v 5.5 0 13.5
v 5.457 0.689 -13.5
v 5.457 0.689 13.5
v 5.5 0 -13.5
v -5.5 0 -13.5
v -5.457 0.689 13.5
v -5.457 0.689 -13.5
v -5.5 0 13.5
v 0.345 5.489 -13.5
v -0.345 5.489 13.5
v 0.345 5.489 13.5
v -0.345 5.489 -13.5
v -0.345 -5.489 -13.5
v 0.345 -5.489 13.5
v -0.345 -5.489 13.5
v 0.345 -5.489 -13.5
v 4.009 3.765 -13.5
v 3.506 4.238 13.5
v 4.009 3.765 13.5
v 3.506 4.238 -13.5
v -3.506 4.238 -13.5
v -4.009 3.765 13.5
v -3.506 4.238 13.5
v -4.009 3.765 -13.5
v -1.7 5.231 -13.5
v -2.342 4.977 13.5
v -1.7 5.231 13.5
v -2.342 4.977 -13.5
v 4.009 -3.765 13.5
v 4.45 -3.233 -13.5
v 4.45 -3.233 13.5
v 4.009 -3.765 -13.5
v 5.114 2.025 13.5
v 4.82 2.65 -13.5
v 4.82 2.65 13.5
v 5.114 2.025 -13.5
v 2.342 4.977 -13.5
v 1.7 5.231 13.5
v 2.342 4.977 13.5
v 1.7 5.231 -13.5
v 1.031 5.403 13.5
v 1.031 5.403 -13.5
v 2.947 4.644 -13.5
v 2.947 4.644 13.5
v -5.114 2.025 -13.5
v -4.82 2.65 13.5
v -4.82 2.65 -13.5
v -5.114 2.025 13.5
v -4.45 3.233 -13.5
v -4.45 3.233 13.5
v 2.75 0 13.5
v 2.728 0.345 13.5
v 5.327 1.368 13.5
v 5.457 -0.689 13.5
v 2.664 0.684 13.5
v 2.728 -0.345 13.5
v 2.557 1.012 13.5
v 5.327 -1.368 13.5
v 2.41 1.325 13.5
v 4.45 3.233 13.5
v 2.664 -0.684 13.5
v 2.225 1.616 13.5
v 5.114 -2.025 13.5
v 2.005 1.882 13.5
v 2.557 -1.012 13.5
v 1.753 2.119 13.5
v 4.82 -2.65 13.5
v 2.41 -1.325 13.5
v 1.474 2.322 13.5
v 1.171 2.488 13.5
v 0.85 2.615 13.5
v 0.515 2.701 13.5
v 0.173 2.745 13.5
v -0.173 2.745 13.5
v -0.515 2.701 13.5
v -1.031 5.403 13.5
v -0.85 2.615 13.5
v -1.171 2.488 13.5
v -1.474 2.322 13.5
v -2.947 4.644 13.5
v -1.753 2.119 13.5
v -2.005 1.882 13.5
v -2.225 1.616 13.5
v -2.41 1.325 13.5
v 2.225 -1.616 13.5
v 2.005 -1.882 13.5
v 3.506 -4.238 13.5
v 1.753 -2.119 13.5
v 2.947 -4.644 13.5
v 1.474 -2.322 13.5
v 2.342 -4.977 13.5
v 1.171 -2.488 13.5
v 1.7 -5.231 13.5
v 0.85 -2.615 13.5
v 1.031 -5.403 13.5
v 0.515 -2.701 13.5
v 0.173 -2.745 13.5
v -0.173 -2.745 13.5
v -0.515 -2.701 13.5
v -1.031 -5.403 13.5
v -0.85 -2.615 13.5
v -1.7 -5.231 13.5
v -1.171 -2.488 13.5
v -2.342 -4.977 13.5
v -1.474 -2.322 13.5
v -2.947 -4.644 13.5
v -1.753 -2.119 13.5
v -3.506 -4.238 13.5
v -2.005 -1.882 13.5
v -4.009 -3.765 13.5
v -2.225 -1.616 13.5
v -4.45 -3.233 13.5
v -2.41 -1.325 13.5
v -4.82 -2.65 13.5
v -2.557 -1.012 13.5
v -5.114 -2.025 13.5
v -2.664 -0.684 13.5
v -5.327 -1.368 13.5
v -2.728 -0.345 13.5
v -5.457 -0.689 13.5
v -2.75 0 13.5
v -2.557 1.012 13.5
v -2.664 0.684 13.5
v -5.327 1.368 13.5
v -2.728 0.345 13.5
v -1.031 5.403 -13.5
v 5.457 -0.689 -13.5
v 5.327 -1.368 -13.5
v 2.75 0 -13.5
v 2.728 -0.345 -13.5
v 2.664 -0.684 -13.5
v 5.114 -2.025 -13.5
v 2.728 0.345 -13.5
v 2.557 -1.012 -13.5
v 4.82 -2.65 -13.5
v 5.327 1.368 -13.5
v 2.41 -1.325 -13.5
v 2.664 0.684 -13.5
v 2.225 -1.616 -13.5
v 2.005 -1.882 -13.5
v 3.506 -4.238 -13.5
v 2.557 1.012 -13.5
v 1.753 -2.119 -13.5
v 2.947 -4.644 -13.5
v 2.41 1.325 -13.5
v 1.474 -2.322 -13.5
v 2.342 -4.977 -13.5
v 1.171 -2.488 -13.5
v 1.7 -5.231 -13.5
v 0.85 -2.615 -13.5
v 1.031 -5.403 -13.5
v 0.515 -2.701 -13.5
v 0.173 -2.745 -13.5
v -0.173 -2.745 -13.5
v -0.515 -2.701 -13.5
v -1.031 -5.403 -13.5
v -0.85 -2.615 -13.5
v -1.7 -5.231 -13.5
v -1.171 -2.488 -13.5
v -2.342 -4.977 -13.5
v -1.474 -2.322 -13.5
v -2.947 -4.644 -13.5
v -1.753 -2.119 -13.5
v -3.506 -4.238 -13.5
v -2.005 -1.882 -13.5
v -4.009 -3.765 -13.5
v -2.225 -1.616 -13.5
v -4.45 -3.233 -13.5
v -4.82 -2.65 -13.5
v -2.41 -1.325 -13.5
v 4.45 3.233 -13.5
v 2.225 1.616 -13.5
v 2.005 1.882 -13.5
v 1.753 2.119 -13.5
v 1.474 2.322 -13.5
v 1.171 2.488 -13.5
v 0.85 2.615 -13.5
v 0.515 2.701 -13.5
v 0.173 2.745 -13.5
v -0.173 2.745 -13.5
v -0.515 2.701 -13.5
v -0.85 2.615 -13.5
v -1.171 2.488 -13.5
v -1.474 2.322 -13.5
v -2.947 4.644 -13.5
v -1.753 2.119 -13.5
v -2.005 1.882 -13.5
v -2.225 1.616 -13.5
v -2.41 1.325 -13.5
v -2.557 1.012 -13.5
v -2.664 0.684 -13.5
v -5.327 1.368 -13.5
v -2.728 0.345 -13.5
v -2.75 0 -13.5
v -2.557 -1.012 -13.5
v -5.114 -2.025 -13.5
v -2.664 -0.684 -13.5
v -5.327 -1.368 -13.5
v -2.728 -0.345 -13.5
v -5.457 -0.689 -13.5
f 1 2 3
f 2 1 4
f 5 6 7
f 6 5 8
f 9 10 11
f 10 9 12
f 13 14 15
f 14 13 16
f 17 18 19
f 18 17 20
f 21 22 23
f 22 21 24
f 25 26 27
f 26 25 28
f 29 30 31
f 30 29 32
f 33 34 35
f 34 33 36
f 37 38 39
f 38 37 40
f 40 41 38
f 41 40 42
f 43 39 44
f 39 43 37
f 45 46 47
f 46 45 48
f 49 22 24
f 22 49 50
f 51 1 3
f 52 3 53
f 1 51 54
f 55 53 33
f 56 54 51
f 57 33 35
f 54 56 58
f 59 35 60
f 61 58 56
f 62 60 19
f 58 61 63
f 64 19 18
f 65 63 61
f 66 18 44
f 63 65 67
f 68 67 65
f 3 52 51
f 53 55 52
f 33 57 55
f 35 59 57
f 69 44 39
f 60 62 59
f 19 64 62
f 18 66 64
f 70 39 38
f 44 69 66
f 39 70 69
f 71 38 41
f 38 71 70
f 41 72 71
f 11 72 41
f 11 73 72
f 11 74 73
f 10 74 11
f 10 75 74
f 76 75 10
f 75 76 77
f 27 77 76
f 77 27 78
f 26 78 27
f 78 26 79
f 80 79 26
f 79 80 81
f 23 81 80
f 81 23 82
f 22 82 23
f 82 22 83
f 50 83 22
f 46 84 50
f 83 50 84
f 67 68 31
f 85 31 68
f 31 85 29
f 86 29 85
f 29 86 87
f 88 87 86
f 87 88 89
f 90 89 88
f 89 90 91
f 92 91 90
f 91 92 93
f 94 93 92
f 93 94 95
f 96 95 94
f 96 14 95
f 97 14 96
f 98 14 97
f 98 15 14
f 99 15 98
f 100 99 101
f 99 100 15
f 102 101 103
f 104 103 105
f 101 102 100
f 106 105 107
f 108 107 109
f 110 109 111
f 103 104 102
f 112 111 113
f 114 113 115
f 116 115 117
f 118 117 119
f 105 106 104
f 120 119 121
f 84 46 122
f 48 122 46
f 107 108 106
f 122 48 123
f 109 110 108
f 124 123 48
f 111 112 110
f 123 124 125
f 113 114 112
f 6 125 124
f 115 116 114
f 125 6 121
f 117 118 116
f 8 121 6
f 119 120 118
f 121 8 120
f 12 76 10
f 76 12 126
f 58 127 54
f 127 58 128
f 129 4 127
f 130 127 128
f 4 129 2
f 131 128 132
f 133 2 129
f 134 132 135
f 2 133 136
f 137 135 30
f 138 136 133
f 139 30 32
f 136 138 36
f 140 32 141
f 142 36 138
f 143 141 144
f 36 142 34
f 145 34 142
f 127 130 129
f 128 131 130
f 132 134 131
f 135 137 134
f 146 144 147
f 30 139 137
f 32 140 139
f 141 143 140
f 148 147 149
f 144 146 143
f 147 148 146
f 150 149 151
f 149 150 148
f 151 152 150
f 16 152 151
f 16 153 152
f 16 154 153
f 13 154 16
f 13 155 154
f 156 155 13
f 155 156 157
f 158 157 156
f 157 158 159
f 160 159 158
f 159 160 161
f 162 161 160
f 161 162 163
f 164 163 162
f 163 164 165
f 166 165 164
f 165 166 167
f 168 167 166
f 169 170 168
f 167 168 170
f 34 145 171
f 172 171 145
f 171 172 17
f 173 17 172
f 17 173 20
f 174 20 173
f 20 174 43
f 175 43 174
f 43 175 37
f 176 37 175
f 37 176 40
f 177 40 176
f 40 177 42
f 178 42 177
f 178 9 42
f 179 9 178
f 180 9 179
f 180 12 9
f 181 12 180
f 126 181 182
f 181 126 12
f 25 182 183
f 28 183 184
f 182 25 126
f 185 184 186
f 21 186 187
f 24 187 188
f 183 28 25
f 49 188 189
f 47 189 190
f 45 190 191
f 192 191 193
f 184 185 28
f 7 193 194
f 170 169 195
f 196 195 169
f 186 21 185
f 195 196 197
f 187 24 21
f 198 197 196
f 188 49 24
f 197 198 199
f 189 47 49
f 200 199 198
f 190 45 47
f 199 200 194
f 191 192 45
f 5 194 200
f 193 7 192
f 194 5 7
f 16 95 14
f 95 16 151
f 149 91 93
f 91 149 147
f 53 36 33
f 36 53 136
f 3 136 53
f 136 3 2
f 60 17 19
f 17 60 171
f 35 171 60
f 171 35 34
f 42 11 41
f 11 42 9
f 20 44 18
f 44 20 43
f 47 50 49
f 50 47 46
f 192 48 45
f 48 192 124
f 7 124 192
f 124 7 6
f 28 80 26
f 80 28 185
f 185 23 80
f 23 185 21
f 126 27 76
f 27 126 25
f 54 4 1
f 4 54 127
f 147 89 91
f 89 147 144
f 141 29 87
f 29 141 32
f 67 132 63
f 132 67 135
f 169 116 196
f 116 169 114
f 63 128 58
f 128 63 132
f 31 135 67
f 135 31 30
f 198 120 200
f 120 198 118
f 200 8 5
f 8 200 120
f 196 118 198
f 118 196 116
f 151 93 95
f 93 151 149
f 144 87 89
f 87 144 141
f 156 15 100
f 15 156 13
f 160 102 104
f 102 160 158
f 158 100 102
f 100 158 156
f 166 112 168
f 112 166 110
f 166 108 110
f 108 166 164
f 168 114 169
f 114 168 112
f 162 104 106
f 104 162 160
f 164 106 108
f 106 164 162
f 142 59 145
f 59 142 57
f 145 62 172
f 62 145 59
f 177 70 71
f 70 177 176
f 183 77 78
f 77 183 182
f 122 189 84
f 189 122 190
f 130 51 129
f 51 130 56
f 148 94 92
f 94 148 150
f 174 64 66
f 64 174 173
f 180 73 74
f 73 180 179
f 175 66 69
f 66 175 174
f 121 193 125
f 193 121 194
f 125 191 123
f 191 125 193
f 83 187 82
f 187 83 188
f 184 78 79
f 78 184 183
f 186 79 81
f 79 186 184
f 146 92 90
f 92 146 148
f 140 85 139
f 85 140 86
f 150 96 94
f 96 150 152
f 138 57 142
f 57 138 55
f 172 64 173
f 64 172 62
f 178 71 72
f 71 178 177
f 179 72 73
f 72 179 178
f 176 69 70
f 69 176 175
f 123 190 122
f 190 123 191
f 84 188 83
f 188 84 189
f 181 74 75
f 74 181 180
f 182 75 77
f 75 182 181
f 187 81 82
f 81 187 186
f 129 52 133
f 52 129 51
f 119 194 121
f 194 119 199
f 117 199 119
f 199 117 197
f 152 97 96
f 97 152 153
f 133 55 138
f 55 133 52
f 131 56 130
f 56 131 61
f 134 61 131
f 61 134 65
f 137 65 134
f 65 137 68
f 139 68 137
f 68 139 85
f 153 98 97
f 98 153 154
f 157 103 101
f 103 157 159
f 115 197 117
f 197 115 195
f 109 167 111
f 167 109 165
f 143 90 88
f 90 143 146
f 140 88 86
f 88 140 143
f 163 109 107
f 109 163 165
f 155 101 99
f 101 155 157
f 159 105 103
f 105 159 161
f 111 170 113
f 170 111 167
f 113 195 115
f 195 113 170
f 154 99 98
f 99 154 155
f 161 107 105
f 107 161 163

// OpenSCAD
$fn = 50;


difference() {
	union() {
		translate(v = [0, 0, -13.5000000000]) {
			cylinder(h = 27, r = 5.5000000000);
		}
	}
	union() {
		translate(v = [0, 0, -100.0000000000]) {
			cylinder(h = 200, r = 2.7500000000);
		}
	}
}
